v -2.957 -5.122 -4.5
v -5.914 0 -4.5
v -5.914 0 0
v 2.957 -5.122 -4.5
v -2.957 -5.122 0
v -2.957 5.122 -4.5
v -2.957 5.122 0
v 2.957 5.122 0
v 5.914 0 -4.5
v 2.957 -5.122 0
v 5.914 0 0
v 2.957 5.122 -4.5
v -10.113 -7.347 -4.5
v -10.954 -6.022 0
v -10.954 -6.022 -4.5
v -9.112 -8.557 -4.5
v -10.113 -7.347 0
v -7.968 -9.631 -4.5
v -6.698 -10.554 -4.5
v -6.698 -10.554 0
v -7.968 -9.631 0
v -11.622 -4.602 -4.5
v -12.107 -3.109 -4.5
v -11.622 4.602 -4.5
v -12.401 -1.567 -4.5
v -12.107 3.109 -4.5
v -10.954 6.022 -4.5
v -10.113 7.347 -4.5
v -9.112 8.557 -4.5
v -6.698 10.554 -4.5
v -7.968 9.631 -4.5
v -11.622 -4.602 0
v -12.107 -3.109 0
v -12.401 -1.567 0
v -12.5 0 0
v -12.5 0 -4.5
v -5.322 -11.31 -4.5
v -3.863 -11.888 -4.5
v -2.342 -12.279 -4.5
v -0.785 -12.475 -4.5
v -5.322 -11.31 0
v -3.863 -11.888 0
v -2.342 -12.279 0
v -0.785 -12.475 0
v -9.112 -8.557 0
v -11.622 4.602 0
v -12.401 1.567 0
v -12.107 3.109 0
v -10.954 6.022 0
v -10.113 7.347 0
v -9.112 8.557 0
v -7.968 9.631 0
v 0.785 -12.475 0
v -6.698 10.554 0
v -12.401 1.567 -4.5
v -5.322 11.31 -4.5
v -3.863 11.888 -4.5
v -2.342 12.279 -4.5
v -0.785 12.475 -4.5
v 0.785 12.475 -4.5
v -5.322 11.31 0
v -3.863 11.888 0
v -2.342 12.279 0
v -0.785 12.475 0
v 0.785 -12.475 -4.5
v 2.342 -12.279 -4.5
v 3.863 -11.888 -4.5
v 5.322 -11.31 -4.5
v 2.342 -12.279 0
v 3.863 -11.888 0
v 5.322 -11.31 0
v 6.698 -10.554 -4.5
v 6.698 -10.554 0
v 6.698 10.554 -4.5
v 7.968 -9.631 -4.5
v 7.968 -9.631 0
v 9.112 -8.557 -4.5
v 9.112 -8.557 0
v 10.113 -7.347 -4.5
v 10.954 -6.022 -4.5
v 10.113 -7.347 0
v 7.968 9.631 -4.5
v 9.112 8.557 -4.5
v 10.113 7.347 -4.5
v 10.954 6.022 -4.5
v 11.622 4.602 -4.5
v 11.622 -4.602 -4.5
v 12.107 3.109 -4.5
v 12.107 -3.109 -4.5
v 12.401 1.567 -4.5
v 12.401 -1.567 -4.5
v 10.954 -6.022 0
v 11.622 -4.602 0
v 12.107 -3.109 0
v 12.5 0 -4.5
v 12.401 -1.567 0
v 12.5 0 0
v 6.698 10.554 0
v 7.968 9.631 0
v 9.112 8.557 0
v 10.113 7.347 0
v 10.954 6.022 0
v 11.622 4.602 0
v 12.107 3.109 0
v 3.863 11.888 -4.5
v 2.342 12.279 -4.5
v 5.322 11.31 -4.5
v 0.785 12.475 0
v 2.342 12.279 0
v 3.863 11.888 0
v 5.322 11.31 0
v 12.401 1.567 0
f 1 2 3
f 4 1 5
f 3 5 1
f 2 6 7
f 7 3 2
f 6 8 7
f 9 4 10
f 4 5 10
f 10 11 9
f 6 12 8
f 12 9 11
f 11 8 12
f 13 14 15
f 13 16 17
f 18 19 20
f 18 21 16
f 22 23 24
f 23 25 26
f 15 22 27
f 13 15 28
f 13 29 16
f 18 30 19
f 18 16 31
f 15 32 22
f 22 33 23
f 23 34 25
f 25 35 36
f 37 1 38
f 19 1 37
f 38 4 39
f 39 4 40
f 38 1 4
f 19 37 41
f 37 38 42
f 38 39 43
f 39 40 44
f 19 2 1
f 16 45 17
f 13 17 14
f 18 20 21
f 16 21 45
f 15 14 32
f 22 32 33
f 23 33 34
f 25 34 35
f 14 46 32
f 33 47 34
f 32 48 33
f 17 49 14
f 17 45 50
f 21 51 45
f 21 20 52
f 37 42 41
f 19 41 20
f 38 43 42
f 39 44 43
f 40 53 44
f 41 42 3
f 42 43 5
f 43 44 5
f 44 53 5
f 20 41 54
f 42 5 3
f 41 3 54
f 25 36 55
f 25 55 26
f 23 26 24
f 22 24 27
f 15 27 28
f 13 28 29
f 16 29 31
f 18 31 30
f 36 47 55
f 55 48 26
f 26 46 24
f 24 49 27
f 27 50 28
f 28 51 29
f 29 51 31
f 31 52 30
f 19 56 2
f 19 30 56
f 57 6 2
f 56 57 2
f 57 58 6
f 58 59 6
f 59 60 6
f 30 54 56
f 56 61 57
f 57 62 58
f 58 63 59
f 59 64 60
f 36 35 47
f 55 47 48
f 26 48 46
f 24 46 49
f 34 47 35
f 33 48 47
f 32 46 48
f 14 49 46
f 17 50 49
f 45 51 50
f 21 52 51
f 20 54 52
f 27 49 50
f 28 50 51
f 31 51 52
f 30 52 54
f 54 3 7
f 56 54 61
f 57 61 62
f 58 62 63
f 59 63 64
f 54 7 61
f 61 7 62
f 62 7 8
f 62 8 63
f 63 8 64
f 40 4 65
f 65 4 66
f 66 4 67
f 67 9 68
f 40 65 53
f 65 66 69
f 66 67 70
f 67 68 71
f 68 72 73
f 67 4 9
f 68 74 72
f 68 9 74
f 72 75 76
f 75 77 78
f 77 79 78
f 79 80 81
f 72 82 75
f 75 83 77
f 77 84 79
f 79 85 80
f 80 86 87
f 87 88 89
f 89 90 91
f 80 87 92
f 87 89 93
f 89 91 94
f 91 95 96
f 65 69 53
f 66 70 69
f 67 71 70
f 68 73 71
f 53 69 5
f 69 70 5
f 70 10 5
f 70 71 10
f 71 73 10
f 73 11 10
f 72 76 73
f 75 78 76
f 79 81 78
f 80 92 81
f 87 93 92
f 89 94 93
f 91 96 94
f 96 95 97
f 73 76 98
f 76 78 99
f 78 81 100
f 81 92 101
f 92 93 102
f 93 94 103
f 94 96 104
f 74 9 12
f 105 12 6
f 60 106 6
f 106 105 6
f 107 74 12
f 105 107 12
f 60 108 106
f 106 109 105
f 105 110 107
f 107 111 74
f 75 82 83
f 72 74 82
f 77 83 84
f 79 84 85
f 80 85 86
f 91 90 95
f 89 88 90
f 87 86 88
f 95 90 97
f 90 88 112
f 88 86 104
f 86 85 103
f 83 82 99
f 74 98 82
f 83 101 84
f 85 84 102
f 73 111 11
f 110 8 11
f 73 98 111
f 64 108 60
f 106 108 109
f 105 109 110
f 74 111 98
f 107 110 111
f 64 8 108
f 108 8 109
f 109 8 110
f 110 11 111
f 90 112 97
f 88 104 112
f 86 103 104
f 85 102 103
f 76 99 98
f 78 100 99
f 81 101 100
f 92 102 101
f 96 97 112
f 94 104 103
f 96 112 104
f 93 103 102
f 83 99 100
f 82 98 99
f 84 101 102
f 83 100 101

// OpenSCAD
$fn = 50;


difference() {
	union() {
		translate(v = [0, 0, -4.5000000000]) {
			cylinder(h = 4.5000000000, r = 12.5000000000);
		}
	}
	union() {
		translate(v = [0, 0, 0]) {
			rotate(a = [0, 0, 0]) {
				difference() {
					union() {
						translate(v = [0, 0, -5]) {
							linear_extrude(height = 5) {
								polygon(points = [[5.9142500000, 0.0000000000], [2.9571250000, 5.1218907443], [-2.9571250000, 5.1218907443], [-5.9142500000, 0.0000000000], [-2.9571250000, -5.1218907443], [2.9571250000, -5.1218907443]]);
							}
						}
					}
					union();
				}
			}
		}
		#translate(v = [0, 0, -100.0000000000]) {
			cylinder(h = 200, r = 3.2500000000);
		}
	}
}
